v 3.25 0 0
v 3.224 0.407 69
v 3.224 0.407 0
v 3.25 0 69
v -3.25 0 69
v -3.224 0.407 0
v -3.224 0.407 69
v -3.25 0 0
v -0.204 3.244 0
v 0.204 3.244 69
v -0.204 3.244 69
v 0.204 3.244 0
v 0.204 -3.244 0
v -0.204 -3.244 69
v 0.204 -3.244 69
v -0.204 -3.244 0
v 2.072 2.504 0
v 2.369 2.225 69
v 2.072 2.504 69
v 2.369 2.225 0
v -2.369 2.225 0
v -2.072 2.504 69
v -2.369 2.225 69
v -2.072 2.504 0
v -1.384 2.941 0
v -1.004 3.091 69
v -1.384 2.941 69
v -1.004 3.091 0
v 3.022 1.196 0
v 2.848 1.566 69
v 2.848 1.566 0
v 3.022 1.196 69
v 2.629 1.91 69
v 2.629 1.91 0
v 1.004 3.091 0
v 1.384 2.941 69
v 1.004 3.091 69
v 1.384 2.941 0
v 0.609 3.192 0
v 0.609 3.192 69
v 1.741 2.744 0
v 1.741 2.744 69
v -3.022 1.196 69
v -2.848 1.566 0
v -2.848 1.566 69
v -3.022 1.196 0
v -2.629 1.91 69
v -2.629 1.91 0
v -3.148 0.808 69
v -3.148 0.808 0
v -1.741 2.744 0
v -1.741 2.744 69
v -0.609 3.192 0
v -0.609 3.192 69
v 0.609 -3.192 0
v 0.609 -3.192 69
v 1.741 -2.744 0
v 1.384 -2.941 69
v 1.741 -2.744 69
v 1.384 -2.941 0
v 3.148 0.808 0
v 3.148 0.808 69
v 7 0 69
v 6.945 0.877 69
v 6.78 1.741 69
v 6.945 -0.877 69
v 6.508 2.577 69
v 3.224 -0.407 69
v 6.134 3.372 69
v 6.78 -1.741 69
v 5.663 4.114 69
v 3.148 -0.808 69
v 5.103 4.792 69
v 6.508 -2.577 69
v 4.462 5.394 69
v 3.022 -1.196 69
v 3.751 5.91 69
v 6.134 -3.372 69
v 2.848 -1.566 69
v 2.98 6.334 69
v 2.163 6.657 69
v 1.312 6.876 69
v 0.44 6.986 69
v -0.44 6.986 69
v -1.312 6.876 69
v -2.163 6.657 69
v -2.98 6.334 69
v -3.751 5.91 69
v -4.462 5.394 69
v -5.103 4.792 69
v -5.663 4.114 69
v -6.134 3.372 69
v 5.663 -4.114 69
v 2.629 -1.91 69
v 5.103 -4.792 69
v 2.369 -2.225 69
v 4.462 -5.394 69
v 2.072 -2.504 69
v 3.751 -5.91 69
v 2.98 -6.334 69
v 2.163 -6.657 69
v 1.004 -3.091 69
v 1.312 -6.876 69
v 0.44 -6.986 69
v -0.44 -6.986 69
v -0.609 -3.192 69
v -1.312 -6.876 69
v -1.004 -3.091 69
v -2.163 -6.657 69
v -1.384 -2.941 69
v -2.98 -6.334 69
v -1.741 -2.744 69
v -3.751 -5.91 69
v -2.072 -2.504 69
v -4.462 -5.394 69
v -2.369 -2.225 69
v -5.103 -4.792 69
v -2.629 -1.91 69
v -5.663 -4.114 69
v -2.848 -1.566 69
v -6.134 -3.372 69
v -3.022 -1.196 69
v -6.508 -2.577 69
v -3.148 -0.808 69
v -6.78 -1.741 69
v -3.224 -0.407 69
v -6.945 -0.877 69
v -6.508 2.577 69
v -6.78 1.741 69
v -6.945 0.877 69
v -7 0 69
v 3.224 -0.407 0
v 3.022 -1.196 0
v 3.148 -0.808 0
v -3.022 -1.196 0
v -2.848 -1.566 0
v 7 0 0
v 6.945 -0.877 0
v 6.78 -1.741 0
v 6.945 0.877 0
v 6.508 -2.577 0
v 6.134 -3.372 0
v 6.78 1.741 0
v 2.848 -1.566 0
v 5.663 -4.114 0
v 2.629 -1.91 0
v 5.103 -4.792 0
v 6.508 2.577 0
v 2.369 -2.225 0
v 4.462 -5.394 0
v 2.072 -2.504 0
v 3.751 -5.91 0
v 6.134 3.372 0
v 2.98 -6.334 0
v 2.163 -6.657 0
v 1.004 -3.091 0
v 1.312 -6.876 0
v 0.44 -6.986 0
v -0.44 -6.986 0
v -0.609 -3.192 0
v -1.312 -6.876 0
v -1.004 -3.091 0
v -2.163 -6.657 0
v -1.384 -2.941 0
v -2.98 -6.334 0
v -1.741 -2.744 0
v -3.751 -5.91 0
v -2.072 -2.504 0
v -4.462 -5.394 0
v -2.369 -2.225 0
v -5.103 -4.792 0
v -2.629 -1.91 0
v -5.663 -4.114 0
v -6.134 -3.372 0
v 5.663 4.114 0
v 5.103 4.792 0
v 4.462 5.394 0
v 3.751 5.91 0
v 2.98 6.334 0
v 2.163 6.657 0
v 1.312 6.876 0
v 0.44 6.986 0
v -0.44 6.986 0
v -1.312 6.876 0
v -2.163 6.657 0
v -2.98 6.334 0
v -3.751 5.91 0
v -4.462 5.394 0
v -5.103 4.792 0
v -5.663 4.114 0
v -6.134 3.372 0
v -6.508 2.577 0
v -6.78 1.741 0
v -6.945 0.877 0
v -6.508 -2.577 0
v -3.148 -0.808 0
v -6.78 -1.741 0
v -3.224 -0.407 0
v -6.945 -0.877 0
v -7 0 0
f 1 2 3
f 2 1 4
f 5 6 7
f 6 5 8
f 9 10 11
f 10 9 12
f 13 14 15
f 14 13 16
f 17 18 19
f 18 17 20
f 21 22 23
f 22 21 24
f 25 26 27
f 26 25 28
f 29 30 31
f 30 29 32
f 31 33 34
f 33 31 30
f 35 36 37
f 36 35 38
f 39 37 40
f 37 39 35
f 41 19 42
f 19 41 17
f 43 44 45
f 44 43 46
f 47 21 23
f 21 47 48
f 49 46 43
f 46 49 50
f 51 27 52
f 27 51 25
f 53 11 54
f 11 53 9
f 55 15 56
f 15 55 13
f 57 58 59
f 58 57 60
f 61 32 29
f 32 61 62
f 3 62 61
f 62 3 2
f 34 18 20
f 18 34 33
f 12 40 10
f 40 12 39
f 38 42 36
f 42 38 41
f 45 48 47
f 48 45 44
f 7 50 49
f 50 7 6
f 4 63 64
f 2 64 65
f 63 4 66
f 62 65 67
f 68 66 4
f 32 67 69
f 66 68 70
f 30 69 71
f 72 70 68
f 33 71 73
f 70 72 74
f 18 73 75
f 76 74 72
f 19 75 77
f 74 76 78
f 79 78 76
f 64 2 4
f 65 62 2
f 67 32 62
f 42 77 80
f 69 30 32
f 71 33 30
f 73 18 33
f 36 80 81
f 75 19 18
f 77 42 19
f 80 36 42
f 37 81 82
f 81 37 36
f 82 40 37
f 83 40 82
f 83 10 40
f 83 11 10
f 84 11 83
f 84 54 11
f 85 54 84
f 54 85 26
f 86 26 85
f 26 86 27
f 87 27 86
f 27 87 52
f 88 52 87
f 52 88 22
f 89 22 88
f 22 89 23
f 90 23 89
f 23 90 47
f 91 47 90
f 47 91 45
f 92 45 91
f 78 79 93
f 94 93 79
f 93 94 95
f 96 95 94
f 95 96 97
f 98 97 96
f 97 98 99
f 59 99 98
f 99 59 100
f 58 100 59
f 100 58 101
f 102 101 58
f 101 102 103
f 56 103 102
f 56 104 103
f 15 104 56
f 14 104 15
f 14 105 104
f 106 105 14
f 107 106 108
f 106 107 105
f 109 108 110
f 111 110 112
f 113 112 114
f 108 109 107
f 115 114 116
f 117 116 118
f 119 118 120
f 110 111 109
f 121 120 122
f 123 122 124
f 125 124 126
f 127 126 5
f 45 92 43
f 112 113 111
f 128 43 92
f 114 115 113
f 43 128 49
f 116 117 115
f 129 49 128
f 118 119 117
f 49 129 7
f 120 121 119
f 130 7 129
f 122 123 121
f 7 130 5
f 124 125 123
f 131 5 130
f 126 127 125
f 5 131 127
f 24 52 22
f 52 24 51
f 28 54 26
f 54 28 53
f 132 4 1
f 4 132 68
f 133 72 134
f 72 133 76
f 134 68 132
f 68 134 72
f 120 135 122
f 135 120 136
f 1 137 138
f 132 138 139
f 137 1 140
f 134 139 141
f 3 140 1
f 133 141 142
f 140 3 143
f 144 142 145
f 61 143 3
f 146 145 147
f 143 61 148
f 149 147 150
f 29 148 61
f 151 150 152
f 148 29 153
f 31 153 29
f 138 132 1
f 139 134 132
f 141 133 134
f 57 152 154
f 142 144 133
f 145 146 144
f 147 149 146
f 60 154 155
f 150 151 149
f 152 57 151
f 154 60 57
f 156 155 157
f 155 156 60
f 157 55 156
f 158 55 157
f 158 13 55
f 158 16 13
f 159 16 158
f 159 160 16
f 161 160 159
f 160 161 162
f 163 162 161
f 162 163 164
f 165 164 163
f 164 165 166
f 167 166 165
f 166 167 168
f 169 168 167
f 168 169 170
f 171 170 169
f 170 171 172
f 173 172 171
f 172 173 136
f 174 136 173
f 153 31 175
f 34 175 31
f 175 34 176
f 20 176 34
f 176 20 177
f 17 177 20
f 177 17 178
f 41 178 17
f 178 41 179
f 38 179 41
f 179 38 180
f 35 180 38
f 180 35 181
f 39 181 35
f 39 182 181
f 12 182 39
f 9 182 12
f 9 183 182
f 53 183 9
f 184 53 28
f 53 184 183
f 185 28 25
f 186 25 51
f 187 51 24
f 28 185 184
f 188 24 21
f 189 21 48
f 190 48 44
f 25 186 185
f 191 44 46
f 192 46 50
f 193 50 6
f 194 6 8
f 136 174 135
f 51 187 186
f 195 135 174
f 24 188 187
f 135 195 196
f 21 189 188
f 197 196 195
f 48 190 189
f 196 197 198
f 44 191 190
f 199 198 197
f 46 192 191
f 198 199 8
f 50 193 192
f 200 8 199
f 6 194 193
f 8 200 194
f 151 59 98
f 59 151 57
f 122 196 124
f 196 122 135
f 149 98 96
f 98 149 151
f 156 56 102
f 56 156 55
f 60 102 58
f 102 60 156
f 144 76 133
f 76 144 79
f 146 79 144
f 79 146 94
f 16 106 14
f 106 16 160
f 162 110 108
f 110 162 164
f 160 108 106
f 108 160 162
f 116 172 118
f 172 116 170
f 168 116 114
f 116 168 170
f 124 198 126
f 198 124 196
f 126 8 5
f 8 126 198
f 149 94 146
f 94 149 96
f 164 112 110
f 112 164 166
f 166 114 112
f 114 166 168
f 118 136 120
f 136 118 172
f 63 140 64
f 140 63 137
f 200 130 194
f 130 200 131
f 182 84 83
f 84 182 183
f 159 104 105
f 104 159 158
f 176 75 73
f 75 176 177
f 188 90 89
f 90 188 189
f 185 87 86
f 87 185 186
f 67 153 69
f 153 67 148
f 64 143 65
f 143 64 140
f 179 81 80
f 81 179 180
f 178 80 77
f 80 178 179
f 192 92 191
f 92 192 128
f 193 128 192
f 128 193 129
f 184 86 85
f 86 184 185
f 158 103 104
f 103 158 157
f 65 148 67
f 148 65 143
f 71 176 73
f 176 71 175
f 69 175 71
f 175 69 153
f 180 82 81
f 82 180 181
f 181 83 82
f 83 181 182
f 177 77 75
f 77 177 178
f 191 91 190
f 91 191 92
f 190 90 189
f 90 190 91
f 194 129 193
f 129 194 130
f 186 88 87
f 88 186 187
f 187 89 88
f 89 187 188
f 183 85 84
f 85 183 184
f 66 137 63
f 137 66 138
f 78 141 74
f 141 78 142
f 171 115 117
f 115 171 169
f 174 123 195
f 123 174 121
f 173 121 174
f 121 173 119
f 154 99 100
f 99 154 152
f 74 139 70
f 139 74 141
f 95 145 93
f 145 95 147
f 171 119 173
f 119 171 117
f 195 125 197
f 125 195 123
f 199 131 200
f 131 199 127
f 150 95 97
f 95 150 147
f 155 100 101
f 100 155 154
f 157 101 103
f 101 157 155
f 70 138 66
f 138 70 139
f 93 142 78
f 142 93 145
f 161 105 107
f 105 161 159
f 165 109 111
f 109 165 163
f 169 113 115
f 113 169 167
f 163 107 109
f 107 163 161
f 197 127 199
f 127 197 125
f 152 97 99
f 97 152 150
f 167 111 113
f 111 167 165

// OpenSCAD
$fn = 50;


difference() {
	union() {
		cylinder(h = 69, r = 7.0000000000);
	}
	union() {
		cylinder(h = 69, r = 3.2500000000);
		cylinder(h = 69, r = 1.8000000000);
		cylinder(h = 69, r = 1.8000000000);
		cylinder(h = 69, r = 1.8000000000);
	}
}
